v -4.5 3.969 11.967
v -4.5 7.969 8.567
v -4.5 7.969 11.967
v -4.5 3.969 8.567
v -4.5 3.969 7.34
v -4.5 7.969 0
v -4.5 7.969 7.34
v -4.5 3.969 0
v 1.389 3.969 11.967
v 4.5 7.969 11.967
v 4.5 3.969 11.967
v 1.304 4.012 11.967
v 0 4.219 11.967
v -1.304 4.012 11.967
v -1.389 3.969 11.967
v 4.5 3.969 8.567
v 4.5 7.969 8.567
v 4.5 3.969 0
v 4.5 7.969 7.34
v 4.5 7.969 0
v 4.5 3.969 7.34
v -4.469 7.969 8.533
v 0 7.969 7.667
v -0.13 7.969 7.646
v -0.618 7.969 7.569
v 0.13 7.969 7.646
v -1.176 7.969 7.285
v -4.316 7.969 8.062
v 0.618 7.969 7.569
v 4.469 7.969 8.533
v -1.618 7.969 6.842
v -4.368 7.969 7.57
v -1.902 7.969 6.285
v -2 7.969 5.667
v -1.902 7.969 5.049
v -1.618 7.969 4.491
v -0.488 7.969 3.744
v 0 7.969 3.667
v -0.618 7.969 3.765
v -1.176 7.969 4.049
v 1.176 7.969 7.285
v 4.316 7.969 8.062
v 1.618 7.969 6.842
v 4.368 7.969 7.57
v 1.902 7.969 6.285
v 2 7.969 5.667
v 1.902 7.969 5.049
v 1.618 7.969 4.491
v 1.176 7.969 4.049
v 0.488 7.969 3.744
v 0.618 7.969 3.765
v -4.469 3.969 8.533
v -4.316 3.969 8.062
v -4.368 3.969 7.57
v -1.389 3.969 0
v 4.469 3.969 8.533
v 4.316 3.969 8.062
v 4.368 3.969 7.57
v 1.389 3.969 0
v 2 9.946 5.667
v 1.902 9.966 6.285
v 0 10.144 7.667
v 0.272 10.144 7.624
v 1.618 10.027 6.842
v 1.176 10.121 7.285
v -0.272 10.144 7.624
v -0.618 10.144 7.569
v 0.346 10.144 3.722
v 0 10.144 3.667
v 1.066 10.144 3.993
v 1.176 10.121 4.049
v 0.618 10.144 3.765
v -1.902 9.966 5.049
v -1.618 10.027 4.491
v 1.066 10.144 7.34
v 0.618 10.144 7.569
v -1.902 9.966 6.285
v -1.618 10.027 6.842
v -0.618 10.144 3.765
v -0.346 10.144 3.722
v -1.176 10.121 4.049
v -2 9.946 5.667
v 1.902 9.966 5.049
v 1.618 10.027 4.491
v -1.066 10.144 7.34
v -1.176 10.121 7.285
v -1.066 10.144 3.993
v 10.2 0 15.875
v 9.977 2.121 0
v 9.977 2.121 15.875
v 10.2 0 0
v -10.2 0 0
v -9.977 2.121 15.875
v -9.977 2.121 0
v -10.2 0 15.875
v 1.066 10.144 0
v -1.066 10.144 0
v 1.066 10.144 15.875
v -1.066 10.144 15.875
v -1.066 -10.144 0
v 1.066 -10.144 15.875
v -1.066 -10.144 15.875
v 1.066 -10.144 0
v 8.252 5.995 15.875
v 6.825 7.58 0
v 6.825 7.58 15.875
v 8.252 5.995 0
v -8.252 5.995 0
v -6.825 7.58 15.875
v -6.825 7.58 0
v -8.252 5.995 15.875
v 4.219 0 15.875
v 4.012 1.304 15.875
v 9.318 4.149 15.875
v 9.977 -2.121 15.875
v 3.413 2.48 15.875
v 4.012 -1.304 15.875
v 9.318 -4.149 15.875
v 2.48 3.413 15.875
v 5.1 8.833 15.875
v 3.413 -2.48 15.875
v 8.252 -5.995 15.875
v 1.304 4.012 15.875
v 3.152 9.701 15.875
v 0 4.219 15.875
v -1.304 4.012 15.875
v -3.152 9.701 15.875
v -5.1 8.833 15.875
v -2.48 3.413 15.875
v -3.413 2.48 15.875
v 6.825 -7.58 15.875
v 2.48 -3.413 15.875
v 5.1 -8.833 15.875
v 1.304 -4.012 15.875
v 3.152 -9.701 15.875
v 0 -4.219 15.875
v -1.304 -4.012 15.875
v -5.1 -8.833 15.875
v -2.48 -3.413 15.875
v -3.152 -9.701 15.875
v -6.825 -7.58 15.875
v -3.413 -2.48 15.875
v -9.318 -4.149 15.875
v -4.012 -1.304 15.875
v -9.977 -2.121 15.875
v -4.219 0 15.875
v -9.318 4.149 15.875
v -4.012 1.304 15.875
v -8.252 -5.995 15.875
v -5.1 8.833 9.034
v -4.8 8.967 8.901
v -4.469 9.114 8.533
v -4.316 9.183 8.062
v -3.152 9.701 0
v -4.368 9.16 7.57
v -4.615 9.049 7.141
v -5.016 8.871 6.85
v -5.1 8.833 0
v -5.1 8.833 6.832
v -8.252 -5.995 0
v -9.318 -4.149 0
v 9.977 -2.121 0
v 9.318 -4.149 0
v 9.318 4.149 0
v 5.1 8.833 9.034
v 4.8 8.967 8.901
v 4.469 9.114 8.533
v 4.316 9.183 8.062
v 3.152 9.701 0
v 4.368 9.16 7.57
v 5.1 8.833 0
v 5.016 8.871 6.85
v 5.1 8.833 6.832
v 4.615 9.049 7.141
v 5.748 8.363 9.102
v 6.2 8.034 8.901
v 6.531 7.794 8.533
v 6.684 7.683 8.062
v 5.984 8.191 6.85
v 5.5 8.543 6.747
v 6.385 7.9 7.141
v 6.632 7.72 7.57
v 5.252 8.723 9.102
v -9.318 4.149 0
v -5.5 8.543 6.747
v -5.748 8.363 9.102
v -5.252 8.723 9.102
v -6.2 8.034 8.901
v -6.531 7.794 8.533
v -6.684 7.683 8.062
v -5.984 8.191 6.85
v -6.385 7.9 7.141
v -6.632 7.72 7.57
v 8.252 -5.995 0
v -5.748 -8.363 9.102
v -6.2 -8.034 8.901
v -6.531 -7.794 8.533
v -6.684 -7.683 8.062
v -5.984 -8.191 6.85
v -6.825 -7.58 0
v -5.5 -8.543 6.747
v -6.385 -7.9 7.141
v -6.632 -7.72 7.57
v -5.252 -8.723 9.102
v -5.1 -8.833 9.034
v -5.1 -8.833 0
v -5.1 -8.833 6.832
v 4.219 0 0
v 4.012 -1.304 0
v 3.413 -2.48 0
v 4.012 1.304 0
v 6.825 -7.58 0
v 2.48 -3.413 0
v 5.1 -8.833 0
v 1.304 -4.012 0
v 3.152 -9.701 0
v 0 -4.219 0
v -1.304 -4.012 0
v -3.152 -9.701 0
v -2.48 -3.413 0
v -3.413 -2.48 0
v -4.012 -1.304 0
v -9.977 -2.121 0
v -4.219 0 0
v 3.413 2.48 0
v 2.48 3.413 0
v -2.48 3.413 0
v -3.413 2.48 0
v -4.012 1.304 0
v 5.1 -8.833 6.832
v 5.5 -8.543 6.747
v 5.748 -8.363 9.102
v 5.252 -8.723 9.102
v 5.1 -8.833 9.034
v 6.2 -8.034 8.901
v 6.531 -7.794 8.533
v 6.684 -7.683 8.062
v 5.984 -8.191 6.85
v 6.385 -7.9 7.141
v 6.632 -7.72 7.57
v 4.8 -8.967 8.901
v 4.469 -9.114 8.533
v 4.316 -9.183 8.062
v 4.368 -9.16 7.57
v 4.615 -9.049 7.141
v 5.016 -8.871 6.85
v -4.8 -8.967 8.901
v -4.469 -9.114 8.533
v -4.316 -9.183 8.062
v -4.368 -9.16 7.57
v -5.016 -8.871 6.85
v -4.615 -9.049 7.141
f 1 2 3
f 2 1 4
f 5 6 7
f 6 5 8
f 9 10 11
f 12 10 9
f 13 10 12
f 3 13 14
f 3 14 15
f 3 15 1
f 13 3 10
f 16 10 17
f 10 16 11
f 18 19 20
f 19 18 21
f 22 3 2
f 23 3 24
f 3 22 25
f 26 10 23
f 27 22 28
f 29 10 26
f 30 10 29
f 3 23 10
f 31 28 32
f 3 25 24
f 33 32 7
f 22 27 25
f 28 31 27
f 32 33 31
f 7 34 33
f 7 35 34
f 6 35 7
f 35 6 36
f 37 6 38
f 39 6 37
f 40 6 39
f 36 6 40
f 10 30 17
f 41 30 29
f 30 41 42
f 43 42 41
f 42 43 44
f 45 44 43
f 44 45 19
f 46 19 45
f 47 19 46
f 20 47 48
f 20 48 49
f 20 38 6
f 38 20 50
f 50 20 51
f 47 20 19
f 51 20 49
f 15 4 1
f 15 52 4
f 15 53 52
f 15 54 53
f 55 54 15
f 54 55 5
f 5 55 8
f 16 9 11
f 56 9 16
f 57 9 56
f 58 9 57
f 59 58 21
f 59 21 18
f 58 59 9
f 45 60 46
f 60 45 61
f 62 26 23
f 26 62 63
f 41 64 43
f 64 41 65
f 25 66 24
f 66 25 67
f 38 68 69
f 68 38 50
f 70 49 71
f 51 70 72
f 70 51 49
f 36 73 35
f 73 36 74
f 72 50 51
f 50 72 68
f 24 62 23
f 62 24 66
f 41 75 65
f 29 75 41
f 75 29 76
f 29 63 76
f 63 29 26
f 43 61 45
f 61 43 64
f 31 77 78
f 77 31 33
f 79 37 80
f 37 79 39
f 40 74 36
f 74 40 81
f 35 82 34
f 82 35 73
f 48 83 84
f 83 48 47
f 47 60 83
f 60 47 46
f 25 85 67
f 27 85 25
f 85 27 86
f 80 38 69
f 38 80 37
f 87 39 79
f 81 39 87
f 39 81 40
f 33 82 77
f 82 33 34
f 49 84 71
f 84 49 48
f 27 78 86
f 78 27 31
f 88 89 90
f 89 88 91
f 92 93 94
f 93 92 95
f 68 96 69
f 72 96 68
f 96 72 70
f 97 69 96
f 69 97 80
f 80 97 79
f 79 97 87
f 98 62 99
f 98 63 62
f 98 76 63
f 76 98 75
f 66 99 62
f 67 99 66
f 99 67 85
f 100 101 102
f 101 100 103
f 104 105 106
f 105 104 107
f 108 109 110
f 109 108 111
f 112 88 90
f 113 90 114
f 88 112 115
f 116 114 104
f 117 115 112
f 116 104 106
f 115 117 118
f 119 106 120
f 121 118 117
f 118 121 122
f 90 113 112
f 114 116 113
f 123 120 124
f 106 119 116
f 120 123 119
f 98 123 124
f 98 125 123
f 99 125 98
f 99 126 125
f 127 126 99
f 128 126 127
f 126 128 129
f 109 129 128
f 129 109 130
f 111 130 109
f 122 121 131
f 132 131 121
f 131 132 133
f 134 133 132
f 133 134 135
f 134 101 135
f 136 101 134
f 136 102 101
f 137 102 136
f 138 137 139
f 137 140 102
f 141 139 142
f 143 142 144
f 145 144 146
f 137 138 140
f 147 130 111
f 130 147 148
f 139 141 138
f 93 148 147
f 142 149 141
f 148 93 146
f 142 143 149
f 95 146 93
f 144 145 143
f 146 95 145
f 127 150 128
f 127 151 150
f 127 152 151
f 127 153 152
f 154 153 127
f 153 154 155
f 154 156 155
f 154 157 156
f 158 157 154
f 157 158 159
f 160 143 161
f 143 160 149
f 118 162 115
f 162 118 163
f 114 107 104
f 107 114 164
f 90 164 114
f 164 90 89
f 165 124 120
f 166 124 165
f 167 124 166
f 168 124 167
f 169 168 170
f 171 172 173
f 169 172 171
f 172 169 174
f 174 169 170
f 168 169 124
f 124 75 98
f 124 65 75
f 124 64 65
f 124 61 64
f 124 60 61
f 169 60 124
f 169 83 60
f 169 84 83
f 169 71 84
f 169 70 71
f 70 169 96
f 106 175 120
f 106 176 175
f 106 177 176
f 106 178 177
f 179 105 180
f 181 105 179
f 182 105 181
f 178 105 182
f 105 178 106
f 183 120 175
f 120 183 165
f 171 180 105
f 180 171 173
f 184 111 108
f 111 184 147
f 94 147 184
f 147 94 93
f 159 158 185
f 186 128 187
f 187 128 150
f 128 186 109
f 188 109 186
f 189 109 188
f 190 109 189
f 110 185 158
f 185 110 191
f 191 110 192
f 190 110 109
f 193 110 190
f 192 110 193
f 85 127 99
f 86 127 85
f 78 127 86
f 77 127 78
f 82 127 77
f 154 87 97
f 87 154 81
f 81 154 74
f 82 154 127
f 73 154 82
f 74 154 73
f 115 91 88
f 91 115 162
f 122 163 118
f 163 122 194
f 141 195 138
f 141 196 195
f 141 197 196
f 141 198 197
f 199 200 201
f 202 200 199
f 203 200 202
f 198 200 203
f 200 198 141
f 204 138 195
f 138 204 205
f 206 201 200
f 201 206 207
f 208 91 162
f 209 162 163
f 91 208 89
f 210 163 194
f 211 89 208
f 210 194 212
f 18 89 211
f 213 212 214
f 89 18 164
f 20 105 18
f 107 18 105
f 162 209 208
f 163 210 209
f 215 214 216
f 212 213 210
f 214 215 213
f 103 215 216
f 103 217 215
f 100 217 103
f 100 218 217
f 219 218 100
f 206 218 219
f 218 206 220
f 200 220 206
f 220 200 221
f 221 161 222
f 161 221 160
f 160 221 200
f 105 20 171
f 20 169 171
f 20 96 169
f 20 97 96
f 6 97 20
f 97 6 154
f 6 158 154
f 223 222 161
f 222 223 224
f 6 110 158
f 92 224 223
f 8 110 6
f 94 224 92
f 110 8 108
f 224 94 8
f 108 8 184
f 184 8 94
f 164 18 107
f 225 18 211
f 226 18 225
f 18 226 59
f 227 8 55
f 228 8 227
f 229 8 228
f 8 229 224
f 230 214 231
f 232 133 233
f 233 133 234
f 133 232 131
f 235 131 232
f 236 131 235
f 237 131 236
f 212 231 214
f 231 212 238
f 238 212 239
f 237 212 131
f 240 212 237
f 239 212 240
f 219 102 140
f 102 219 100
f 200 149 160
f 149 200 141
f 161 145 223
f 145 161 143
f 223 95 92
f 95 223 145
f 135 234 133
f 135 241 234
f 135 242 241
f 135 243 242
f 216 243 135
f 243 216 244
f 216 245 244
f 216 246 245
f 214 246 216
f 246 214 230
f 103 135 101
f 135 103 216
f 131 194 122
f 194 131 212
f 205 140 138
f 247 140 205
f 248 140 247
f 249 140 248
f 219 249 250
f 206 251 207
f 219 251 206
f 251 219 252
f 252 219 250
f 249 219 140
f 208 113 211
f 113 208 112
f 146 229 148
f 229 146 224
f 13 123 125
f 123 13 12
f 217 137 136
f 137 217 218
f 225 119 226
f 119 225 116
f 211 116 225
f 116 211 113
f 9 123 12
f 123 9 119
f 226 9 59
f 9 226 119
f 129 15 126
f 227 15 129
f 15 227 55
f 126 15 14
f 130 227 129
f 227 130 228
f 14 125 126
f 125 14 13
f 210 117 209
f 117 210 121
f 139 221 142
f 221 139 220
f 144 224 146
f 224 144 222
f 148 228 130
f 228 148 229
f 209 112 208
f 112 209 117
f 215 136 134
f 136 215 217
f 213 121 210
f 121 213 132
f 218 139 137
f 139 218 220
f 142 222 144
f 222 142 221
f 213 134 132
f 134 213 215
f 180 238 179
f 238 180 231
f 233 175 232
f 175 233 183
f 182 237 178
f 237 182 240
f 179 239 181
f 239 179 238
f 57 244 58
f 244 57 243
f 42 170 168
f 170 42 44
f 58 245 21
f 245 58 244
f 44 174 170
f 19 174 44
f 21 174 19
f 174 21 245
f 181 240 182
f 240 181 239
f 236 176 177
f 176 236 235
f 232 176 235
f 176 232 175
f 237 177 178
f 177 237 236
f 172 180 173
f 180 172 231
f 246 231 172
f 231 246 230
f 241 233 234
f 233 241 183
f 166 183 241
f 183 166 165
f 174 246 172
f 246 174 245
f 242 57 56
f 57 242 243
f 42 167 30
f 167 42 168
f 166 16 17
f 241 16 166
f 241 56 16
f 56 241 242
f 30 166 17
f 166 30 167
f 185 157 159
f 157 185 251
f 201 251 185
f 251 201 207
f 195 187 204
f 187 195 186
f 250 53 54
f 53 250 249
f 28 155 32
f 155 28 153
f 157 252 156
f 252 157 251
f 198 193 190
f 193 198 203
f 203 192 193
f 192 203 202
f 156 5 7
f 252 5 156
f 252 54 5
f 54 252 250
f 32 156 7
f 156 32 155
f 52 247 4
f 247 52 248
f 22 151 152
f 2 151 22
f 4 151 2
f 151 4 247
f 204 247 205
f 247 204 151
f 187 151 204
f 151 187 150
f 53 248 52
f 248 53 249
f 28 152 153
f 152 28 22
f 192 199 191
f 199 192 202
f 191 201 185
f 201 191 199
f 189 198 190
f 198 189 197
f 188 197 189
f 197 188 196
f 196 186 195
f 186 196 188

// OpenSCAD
D=4.5*25.4;//mm
Wall=2;//mm
DMount=22.5;//mmr
RBolt=22;//mm
DBolt=3.5;//mm
DSeed=10;//mm
PipeID=.75*25.4;//mm

module wireLoop(up=5,LoopDiameter=7/*mm*/) {
WireDiameter=25.4*3/32; //mm
N=16;
C=LoopDiameter*3.14159;
H=C*1.2/N;
    translate([-up,LoopDiameter/2,0])
      cylinder(d=WireDiameter,h=30,$fn=15,center=true);
    translate([-up,-LoopDiameter/2,0])
      cylinder(d=WireDiameter,h=30,$fn=15,center=true);
}

module setScrew() {
    AxleD=19;//mm
    boltD=4;//mm
    boltFlat=9;//mm
    boltNutT=4;//mm
    boltHoleT=12;//mm
    MotorAxleD=25.4*5/16;//mm
    MotorAxleT=25.4*19/32;//mm
     translate([0,MotorAxleD/2+boltNutT/2,-AxleD/3]){
            cube([boltFlat,boltNutT,boltFlat*1.4],center=true);
            translate([0,AxleD/4,0])  
              rotate([90,0,0])
                cylinder(d=boltD,h=AxleD/2,center=true,$fn=20);
     }  
}

 module wireWheel(){
  H=25.4*5/8;
  difference(){  
      cylinder(d=20.4,h=H); 
    cylinder(h=H,d=25.4*5/16+.5,$fn=20);
    translate([0,0,12])  
          setScrew();
  }
}

module potAttach() {
  H=25.4*1/4;
  difference(){  
    cylinder(d=25.4,h=H); 
    cylinder(h=H,d=25.4*7/32+.5,$fn=20);
  }
}

module potSide() {
  difference() {
    potAttach();
    rotate([90,90,0]) 
      wireLoop(up=25.4*2/16,LoopDiameter=11);
  }
}
module motorSide() {
  difference() {
    wireWheel();
    rotate([90,90,0]) 
      wireLoop(up=25.4*5/8/2,LoopDiameter=11);
  }
}


motorSide();
